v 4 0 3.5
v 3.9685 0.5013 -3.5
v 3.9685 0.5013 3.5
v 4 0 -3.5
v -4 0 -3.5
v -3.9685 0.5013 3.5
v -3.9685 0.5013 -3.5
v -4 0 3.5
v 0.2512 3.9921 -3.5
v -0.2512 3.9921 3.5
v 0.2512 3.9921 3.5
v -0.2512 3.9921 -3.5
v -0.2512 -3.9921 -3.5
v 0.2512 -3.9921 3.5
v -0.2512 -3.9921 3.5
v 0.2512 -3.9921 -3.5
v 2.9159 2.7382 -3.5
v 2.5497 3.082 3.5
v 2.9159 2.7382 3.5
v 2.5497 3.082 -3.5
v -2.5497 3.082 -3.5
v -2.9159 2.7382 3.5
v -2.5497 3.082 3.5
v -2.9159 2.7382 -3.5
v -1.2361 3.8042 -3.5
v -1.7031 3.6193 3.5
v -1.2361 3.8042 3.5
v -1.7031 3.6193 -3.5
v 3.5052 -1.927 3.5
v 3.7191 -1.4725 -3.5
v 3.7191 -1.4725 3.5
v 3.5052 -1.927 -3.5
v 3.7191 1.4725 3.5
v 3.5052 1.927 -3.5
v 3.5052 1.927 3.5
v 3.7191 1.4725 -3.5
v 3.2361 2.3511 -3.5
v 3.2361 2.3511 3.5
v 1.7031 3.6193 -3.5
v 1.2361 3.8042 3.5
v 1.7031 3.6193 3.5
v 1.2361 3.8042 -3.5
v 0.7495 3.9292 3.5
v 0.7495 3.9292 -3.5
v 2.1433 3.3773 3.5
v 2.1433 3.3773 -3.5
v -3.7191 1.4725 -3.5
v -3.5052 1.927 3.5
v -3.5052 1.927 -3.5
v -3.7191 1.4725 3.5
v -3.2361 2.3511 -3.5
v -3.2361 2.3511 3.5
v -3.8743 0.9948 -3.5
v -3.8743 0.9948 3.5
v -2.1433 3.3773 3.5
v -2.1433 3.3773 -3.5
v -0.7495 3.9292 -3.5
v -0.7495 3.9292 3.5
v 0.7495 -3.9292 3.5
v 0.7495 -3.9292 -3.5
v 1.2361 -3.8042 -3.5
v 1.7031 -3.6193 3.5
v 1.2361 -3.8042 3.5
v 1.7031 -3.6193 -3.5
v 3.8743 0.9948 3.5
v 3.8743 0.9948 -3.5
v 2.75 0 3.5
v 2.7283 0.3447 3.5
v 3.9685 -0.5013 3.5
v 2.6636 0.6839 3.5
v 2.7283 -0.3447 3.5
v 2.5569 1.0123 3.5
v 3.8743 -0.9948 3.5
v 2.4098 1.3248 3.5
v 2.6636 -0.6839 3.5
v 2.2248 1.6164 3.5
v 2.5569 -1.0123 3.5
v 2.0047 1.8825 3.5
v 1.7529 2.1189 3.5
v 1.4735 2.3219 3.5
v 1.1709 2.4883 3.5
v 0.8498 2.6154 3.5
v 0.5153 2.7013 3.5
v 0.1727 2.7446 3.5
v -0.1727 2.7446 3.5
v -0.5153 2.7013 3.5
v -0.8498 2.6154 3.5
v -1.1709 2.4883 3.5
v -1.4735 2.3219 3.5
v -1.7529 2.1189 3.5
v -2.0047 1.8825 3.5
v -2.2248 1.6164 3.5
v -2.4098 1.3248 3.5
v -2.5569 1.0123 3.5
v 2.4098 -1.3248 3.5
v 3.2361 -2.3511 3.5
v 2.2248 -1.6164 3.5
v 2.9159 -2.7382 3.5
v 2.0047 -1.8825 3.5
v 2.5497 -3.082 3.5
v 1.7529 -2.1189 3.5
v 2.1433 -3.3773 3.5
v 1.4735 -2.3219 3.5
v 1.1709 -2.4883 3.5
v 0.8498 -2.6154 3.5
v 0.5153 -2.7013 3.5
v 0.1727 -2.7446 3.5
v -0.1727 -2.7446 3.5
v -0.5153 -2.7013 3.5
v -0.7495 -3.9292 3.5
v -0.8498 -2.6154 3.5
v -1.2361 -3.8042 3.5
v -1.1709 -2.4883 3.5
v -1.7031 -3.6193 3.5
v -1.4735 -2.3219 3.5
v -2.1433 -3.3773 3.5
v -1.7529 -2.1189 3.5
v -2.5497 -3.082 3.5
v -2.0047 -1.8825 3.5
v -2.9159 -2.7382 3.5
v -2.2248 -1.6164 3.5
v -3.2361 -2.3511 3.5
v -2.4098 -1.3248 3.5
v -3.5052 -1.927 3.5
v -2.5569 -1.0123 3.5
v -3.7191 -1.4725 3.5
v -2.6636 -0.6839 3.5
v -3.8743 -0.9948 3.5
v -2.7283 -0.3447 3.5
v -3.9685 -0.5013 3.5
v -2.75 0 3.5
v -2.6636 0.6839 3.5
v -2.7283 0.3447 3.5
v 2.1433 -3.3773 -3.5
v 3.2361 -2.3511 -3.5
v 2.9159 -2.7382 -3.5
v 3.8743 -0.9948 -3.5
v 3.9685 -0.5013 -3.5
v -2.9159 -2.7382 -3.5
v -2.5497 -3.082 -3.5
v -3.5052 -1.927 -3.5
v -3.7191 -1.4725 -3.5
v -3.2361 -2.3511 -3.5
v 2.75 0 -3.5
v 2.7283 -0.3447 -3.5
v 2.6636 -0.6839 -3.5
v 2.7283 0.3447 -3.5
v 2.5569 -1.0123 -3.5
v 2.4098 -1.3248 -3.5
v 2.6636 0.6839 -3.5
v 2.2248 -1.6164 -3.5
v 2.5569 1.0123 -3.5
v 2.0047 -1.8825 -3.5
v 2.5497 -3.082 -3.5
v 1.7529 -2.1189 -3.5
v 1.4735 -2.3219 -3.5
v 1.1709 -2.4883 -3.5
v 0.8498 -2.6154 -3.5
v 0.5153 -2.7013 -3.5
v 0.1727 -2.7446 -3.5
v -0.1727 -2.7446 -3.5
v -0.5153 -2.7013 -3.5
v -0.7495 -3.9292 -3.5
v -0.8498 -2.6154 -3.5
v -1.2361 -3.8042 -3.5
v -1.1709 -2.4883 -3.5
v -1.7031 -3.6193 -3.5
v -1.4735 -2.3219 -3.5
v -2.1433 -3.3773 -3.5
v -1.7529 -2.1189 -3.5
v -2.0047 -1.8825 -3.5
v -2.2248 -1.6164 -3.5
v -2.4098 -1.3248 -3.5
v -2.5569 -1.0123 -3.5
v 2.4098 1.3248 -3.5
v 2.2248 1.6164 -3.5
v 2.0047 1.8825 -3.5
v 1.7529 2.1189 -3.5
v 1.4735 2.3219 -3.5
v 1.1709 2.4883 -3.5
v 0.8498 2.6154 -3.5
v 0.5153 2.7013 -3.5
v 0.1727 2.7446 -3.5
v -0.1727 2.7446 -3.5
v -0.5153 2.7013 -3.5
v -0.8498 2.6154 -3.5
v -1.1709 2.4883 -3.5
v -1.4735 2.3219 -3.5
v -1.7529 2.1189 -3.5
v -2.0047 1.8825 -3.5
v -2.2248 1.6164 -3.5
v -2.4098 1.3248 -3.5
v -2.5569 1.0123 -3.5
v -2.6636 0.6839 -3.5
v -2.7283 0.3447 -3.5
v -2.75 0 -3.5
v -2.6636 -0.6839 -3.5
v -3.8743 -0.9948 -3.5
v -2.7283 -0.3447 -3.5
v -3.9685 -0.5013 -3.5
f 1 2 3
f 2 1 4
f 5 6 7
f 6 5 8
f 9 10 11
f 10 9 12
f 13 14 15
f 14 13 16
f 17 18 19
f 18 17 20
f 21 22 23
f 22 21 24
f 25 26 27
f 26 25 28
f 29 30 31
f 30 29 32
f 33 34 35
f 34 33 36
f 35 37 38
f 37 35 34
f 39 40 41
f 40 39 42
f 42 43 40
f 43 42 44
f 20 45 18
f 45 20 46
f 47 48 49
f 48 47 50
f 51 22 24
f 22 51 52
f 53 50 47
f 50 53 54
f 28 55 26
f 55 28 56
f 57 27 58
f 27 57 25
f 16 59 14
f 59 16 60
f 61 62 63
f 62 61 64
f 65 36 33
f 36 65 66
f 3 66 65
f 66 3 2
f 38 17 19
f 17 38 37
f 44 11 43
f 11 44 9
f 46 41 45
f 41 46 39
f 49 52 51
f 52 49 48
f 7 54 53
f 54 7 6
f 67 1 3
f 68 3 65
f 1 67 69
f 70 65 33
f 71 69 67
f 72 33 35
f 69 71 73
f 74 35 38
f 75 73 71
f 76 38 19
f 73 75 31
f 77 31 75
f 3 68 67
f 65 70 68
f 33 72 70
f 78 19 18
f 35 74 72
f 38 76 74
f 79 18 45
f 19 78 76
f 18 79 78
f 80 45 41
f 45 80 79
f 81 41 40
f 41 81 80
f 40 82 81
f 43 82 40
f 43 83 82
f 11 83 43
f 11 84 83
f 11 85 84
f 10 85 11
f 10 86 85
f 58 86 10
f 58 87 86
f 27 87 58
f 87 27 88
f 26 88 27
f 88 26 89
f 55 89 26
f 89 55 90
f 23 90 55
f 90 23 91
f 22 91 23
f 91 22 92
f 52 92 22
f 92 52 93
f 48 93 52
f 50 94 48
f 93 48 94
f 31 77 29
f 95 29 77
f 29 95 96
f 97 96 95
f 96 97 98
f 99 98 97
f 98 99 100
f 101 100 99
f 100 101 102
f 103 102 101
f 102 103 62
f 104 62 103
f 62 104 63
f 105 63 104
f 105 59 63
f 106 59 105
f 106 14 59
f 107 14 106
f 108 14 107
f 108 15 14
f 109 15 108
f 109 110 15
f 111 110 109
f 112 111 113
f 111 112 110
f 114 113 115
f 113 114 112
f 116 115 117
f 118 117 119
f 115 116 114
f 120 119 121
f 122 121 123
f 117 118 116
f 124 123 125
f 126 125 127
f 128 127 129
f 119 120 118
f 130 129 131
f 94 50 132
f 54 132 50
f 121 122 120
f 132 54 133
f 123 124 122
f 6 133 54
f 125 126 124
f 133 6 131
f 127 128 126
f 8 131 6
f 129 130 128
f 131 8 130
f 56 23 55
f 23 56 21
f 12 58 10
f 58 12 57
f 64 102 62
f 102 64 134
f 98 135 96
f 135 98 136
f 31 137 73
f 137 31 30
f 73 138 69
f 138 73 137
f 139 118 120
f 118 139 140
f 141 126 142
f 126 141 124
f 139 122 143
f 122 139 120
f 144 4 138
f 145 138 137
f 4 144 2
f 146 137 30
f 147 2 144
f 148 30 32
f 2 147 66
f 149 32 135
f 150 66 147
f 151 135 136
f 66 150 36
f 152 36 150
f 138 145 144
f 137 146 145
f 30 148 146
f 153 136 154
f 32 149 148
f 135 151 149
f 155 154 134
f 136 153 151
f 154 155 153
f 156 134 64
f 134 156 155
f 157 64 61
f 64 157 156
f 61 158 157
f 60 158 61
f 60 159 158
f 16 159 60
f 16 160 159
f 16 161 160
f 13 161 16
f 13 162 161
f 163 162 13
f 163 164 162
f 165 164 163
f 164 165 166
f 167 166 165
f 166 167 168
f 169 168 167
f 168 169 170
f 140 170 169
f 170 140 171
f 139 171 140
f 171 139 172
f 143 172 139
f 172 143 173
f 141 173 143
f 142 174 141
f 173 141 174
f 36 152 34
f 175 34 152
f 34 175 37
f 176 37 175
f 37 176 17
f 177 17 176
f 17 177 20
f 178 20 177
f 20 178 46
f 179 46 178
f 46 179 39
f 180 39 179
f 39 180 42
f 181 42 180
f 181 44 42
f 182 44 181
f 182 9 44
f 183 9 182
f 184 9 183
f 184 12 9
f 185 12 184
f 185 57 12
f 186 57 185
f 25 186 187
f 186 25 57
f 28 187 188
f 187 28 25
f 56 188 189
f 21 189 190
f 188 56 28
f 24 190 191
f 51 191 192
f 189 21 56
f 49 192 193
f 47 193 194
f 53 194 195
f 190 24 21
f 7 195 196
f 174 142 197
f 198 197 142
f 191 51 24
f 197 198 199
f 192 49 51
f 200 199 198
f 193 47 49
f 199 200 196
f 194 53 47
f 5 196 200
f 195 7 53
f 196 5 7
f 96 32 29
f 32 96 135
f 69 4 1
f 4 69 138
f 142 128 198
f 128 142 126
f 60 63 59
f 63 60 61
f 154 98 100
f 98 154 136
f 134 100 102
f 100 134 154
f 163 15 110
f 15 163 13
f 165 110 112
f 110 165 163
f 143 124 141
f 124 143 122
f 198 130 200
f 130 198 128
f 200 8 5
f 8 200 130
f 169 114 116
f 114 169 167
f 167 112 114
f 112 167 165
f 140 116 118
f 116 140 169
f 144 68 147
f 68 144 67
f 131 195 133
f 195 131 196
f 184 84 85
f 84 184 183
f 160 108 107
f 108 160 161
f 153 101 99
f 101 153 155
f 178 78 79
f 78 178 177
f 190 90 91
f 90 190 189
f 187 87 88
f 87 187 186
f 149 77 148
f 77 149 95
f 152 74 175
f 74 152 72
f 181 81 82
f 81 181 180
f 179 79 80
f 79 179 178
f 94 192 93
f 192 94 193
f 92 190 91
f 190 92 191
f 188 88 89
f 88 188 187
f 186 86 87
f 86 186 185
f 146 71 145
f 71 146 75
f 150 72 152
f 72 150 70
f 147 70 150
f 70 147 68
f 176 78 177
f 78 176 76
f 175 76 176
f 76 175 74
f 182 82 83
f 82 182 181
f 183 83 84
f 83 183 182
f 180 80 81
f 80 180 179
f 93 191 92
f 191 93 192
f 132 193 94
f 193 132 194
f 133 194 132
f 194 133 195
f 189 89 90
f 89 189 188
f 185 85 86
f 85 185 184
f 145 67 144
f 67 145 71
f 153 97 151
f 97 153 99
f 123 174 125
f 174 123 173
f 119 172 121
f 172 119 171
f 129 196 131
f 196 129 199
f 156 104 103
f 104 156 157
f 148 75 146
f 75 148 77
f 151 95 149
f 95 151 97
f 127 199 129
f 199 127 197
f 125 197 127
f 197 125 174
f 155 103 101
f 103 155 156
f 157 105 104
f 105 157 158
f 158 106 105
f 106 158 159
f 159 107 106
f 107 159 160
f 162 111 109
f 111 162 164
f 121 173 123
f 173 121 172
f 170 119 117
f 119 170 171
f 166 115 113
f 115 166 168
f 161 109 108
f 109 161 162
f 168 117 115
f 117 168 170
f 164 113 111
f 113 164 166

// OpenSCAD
$fn = 50;


difference() {
	union() {
		translate(v = [0, 0, -3.5000000000]) {
			cylinder(h = 7, r = 4.0000000000);
		}
	}
	union() {
		translate(v = [0, 0, -100.0000000000]) {
			cylinder(h = 200, r = 2.7500000000);
		}
	}
}
